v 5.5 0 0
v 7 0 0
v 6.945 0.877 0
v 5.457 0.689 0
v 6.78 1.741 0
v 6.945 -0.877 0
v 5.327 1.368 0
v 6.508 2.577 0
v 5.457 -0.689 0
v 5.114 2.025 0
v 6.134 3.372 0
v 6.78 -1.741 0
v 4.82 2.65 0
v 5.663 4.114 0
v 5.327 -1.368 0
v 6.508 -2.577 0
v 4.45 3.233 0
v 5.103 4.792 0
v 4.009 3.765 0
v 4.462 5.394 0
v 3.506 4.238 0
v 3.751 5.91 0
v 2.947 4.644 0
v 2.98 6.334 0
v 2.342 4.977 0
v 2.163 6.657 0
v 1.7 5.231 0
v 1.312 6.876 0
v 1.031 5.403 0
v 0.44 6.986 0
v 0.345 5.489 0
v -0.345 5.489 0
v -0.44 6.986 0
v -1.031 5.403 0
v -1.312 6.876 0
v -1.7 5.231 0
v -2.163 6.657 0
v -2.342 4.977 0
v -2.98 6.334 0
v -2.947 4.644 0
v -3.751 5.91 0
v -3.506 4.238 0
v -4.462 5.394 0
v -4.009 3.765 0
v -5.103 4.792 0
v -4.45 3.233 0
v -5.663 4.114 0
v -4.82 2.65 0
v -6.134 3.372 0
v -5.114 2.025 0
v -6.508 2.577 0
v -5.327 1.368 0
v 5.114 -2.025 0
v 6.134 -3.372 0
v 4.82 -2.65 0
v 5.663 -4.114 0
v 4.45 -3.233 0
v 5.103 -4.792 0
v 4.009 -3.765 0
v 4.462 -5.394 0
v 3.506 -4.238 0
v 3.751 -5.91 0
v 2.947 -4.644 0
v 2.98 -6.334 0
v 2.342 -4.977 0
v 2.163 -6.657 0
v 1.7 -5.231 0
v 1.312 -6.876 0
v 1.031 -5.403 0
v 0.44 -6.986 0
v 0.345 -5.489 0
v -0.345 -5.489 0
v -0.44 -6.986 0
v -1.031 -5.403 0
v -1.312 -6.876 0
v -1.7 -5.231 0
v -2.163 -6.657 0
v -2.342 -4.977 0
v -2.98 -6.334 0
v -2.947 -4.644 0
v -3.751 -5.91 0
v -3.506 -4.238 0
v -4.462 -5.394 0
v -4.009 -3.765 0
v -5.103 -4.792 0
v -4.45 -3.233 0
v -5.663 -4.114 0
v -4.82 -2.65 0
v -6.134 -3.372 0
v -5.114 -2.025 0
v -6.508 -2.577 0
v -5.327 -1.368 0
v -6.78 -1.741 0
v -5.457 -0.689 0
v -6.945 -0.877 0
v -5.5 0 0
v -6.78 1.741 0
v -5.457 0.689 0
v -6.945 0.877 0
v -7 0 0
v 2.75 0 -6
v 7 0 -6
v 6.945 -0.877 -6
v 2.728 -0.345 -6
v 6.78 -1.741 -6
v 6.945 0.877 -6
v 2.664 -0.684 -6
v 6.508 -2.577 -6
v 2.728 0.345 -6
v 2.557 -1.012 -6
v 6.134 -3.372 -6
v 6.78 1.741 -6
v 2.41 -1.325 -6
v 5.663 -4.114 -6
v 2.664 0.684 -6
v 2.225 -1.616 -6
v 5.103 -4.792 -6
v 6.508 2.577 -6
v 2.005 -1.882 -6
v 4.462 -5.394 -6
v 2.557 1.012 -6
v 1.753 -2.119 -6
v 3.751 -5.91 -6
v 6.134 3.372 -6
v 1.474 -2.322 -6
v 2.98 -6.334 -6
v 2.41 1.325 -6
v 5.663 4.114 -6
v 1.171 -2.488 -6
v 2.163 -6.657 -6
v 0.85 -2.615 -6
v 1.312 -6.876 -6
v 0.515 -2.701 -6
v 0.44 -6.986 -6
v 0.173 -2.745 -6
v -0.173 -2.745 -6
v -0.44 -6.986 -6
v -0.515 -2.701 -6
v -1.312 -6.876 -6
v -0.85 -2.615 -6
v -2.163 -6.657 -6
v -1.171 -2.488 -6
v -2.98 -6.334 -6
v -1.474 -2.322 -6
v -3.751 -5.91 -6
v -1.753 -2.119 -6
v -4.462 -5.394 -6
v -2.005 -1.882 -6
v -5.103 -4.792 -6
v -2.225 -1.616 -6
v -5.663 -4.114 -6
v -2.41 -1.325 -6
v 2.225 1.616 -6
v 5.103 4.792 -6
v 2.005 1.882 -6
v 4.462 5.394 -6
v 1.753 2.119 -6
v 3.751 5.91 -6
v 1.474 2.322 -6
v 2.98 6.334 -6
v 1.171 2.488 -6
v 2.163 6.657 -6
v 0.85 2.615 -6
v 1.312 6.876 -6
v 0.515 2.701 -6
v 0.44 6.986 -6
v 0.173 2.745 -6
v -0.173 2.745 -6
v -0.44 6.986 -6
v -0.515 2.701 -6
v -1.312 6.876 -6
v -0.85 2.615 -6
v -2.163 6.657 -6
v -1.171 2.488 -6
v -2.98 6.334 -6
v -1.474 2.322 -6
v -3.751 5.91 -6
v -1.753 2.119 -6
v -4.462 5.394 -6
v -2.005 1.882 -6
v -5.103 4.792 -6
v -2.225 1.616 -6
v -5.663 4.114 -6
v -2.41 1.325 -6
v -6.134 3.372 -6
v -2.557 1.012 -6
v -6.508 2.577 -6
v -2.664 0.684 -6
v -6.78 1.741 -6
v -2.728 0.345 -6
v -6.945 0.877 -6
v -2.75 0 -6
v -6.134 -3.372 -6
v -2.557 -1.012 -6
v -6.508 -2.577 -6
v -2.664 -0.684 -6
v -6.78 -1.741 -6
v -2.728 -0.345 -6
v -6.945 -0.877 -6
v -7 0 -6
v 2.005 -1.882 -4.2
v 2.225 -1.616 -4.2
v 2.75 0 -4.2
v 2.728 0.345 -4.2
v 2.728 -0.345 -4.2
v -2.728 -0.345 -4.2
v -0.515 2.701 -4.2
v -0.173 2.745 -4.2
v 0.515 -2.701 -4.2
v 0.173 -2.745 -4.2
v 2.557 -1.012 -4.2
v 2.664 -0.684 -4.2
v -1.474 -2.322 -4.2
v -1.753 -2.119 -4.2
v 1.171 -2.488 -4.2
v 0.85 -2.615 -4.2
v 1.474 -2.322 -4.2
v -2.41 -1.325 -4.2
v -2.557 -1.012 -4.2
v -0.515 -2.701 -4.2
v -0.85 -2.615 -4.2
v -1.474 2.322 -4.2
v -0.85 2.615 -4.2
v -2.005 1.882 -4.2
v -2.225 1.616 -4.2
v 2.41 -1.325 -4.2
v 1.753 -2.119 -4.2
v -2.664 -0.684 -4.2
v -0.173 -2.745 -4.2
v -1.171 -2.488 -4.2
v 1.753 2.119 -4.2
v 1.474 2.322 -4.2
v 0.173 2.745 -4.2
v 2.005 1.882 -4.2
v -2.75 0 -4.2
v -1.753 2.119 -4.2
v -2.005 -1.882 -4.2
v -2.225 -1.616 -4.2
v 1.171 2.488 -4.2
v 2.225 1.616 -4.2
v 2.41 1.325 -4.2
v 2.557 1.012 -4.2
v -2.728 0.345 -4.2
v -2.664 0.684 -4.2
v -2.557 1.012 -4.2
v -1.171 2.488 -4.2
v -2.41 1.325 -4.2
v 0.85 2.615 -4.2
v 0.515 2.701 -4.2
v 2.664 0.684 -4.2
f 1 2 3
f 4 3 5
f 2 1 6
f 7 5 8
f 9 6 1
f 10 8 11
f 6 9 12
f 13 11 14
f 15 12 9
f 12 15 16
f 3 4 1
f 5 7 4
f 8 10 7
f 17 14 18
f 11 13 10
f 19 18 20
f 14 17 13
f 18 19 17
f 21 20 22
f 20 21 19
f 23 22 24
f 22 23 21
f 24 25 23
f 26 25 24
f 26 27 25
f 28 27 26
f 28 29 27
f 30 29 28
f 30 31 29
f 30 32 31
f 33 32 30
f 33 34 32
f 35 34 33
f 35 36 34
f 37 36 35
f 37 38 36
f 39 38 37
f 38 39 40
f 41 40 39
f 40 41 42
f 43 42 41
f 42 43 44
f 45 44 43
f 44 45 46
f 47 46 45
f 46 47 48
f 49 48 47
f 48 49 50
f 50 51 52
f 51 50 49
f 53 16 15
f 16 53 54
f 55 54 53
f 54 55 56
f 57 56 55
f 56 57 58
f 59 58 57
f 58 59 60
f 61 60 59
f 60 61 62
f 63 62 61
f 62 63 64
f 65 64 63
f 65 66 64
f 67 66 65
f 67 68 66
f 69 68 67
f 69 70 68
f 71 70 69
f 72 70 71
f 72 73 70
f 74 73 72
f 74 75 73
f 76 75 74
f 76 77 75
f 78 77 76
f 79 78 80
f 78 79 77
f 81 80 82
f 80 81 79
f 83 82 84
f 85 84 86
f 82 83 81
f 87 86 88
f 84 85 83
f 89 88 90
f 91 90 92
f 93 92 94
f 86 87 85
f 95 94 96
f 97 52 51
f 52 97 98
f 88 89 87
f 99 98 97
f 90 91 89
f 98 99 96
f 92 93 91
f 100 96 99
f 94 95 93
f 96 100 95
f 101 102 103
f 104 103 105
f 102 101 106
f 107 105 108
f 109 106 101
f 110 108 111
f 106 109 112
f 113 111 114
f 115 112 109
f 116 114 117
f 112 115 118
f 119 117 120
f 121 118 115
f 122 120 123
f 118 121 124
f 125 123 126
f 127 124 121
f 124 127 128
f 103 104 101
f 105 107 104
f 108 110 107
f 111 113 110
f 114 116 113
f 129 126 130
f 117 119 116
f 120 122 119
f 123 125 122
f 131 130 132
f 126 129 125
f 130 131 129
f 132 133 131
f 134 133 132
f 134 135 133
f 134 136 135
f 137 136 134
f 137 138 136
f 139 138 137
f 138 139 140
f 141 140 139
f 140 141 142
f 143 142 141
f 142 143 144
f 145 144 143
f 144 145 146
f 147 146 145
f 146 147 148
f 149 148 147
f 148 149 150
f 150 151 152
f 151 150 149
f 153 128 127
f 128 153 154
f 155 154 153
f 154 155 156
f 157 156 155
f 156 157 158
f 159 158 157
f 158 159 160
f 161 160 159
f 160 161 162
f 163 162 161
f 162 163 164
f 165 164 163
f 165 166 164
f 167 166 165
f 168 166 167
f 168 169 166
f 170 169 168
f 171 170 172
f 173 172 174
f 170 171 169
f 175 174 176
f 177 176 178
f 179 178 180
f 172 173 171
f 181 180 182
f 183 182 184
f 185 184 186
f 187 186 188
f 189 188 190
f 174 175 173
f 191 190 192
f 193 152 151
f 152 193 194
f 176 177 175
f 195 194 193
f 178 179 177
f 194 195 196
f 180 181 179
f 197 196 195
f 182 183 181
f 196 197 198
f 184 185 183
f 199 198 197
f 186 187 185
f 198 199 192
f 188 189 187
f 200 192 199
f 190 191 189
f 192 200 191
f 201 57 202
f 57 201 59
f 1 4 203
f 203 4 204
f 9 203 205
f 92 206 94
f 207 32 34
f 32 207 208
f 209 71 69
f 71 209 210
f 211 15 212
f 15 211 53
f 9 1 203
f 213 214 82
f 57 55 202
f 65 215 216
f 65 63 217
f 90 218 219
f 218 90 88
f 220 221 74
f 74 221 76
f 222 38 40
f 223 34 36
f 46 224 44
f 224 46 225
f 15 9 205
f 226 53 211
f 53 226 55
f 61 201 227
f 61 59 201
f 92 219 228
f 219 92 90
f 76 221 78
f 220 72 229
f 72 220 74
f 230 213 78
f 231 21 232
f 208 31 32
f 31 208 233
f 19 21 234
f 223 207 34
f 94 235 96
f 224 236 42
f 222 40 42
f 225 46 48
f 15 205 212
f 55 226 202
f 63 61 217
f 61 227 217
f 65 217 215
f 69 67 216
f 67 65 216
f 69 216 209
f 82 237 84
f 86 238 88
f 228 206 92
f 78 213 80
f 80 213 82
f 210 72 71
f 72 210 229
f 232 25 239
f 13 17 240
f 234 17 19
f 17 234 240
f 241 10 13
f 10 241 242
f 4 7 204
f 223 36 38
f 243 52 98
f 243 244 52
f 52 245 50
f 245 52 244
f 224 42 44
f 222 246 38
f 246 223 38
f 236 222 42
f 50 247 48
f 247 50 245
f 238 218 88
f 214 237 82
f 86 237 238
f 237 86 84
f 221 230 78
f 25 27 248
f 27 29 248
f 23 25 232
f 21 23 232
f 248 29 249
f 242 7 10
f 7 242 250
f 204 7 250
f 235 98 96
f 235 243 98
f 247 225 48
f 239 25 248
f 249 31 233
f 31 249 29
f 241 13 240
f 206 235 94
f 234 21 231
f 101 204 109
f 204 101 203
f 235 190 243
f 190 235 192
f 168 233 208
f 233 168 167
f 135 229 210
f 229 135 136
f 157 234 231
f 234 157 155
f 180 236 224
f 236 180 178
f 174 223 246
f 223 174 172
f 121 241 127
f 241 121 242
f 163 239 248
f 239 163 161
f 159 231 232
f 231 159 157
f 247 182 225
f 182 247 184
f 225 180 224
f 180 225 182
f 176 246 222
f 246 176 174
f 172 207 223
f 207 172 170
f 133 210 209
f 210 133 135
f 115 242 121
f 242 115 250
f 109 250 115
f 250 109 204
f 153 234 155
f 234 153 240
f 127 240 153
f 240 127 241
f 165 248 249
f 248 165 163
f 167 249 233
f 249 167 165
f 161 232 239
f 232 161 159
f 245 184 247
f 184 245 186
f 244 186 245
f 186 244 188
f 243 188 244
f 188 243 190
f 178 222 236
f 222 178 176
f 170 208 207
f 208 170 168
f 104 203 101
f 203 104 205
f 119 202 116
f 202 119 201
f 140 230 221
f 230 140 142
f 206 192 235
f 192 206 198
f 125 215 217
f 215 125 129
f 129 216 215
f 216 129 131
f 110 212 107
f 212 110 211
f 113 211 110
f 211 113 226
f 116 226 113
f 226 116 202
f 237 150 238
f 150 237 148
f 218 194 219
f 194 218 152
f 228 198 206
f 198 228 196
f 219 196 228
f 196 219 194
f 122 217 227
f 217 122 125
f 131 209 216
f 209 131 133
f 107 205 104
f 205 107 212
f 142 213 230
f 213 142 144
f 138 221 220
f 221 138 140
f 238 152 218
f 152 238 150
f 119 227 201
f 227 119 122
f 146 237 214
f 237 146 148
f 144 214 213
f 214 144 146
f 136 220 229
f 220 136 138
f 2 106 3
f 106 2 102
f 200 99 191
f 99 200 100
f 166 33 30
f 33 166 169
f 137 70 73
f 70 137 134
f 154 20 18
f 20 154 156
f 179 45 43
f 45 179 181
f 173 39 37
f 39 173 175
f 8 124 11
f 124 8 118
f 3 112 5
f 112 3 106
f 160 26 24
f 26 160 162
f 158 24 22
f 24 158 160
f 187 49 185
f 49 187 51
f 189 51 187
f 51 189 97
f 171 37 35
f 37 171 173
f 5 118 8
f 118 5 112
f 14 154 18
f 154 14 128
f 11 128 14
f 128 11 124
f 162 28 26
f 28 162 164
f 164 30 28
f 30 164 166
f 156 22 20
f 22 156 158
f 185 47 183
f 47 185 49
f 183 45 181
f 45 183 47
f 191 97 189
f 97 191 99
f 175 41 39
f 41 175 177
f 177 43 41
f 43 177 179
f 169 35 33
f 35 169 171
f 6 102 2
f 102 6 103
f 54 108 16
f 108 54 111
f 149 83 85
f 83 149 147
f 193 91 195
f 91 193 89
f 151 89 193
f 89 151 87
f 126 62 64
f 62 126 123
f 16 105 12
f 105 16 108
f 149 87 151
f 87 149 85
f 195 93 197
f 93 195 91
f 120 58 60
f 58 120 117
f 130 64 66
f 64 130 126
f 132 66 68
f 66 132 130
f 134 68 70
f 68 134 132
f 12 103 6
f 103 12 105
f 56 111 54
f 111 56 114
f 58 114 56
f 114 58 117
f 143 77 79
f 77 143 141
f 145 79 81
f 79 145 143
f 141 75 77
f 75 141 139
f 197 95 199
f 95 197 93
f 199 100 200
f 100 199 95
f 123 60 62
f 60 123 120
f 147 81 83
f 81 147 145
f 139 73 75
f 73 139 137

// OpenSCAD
$fn = 50;


difference() {
	union() {
		translate(v = [0, 0, -6.0000000000]) {
			cylinder(h = 6, r = 7.0000000000);
		}
		cylinder(h = 0, r = 10.0000000000);
	}
	union() {
		translate(v = [0, 0, 0]) {
			rotate(a = [0, 0, 0]) {
				difference() {
					union() {
						#translate(v = [0, 0, -6.0000000000]) {
							cylinder(h = 6, r = 2.2500000000);
						}
						#translate(v = [0, 0, -4.2000000000]) {
							cylinder(h = 4.2000000000, r1 = 2.7500000000, r2 = 5.5000000000);
						}
						#translate(v = [0, 0, -6.0000000000]) {
							cylinder(h = 6, r = 2.7500000000);
						}
						#translate(v = [0, 0, -6.0000000000]) {
							cylinder(h = 6, r = 2.2500000000);
						}
					}
					union();
				}
			}
		}
	}
}
